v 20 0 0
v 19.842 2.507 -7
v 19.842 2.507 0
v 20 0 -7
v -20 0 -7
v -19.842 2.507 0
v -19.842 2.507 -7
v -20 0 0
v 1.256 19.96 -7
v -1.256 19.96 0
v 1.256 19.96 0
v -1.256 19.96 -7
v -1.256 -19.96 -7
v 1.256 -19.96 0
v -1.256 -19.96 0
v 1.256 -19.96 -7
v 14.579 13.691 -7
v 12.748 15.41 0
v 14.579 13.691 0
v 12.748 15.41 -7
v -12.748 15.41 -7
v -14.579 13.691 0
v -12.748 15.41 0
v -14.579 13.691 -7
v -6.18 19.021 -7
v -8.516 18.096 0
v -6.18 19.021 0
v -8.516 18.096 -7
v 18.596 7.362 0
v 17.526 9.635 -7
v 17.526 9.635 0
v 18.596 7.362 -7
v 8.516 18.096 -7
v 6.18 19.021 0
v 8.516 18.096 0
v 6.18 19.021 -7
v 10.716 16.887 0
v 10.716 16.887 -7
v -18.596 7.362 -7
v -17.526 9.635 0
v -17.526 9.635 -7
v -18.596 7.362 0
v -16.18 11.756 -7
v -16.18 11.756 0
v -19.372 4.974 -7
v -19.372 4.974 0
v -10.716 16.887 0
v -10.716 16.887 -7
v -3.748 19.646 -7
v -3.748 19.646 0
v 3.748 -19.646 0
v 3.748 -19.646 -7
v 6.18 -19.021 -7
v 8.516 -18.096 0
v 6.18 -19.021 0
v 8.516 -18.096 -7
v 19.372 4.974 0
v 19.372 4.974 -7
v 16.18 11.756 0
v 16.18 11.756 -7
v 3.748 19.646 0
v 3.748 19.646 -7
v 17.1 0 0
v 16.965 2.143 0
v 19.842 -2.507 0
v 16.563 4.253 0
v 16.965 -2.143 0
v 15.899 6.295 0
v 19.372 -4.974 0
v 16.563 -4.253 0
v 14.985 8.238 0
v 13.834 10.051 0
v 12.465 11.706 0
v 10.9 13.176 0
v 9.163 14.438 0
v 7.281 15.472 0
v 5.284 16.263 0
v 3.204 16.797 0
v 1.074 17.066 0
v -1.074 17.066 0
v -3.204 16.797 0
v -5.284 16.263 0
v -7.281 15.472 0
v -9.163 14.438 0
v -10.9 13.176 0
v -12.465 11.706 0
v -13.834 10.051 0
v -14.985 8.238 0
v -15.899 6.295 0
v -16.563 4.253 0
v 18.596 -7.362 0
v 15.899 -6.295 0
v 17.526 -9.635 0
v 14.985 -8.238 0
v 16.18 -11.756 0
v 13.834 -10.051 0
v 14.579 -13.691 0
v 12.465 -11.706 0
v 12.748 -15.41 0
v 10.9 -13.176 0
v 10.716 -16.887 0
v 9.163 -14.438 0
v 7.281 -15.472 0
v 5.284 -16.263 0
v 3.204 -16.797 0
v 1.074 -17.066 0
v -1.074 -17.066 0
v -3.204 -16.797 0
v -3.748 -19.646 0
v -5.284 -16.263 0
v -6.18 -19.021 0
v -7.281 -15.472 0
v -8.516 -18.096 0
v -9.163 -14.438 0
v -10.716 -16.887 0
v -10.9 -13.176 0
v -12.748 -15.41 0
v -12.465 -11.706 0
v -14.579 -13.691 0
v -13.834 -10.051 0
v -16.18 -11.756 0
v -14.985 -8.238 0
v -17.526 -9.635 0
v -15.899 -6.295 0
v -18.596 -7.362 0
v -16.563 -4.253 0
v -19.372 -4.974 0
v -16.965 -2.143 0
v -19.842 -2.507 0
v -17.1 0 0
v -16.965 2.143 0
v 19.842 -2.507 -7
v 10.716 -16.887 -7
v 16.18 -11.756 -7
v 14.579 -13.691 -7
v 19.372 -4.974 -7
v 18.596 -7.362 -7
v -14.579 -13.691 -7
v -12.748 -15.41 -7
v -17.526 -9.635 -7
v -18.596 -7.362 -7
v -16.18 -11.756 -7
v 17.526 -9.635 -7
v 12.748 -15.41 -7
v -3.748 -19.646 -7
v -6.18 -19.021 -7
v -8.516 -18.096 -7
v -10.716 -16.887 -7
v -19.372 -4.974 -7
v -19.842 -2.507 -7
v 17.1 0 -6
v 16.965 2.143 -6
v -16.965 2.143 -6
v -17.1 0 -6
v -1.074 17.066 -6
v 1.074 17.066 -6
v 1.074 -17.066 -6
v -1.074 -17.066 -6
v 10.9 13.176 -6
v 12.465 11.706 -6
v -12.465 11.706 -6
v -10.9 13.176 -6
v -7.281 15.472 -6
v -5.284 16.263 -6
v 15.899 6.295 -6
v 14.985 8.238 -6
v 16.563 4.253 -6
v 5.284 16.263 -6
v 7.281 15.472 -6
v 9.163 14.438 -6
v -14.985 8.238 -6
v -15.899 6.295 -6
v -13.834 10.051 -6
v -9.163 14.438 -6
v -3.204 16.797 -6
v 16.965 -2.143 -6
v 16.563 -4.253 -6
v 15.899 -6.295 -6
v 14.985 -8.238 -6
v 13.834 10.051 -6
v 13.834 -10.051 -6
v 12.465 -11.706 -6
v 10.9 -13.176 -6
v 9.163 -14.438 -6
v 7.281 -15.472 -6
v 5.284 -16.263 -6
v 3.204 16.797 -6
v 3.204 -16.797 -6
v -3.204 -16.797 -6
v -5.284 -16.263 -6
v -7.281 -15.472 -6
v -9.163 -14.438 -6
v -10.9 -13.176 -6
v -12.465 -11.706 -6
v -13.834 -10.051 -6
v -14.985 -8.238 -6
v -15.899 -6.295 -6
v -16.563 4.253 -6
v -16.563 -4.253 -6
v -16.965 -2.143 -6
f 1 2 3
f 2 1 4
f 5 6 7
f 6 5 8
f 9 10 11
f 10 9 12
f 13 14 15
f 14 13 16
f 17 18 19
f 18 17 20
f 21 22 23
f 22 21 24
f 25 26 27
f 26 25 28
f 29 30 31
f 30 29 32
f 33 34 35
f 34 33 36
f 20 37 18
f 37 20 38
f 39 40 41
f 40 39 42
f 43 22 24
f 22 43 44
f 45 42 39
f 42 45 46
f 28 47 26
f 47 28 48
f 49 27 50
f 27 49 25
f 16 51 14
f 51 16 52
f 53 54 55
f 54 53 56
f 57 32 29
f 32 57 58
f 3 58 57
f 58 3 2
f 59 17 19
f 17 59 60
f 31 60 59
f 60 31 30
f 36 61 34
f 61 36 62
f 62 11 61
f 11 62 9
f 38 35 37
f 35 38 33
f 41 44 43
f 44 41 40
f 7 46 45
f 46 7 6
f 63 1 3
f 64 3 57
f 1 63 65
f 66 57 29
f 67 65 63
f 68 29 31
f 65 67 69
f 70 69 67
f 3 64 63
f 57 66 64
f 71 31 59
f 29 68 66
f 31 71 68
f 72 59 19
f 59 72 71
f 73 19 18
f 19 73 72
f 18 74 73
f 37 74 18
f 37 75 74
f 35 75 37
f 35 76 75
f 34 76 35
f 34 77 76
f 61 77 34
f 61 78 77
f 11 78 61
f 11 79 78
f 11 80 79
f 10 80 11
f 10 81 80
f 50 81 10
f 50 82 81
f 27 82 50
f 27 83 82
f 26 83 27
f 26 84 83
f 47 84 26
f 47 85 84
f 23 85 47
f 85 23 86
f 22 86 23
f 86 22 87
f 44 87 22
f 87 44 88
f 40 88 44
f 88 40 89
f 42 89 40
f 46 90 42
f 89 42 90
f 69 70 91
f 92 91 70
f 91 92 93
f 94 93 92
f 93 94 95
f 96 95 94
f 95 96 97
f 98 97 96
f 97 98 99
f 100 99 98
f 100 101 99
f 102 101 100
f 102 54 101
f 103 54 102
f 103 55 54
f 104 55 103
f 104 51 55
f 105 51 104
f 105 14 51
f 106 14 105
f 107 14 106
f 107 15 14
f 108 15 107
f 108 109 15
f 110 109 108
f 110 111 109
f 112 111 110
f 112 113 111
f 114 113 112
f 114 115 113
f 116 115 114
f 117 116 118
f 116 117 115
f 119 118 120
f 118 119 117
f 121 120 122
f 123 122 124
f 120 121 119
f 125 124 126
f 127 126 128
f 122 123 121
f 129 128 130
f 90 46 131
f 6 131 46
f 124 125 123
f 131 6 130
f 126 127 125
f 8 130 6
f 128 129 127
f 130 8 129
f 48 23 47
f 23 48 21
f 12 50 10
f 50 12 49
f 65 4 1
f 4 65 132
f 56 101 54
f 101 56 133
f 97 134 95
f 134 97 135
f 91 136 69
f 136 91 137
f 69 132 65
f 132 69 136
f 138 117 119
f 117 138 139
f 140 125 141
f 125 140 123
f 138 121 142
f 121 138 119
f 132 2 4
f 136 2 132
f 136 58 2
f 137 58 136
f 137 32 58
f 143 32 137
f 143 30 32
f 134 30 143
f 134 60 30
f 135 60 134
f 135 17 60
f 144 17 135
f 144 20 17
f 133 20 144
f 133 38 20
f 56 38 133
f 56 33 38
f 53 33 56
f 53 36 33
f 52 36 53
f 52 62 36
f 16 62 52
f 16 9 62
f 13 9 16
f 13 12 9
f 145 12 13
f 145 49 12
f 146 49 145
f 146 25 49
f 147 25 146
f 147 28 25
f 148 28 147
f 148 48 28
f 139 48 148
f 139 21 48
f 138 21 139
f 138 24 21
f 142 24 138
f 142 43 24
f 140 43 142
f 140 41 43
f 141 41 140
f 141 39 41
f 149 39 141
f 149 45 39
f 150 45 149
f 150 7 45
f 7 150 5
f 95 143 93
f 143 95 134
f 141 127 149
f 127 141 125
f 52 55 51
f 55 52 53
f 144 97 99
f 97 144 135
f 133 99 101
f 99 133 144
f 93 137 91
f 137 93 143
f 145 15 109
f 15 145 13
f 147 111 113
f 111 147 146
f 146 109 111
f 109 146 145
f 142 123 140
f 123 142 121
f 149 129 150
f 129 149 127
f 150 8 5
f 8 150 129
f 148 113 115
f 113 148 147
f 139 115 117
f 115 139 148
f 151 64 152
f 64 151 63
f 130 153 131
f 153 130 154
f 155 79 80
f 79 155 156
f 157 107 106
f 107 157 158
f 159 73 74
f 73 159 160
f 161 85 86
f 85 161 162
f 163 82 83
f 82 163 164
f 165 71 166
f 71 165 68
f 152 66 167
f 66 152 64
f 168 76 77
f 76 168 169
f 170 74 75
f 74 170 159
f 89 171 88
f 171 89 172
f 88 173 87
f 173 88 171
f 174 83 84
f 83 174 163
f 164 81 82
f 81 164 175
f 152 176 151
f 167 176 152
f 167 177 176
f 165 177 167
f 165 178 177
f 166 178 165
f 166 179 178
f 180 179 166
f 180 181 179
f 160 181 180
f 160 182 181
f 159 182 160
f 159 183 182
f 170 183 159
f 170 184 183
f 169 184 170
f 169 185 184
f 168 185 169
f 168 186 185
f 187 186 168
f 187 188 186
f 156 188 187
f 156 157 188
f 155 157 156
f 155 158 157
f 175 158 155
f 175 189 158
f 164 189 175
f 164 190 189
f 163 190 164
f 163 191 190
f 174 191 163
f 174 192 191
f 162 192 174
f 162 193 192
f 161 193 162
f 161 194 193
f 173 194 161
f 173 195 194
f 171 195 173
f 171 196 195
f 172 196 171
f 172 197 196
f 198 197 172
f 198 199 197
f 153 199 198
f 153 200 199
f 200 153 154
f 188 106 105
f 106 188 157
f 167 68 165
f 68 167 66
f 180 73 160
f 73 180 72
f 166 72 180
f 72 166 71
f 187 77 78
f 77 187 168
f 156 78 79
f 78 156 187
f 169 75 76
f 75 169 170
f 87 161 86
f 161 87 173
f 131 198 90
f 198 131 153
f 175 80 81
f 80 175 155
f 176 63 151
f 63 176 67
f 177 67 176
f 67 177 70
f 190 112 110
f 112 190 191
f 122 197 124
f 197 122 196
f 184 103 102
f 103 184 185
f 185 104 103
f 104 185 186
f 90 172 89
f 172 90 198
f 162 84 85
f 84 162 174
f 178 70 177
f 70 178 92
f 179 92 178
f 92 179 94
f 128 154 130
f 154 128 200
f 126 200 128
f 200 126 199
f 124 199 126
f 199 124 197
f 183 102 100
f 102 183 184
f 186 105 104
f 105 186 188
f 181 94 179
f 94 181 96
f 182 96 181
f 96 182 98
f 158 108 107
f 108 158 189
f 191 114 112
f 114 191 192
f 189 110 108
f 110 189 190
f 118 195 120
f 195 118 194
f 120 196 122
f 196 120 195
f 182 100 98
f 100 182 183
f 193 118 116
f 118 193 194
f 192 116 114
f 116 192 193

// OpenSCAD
$fn = 50;


difference() {
	union() {
		translate(v = [0, 0, -7.0000000000]) {
			cylinder(h = 7, r = 20.0000000000);
		}
	}
	union() {
		#translate(v = [0, 0, -6.0000000000]) {
			cylinder(h = 6, r = 17.1000000000);
		}
	}
}
